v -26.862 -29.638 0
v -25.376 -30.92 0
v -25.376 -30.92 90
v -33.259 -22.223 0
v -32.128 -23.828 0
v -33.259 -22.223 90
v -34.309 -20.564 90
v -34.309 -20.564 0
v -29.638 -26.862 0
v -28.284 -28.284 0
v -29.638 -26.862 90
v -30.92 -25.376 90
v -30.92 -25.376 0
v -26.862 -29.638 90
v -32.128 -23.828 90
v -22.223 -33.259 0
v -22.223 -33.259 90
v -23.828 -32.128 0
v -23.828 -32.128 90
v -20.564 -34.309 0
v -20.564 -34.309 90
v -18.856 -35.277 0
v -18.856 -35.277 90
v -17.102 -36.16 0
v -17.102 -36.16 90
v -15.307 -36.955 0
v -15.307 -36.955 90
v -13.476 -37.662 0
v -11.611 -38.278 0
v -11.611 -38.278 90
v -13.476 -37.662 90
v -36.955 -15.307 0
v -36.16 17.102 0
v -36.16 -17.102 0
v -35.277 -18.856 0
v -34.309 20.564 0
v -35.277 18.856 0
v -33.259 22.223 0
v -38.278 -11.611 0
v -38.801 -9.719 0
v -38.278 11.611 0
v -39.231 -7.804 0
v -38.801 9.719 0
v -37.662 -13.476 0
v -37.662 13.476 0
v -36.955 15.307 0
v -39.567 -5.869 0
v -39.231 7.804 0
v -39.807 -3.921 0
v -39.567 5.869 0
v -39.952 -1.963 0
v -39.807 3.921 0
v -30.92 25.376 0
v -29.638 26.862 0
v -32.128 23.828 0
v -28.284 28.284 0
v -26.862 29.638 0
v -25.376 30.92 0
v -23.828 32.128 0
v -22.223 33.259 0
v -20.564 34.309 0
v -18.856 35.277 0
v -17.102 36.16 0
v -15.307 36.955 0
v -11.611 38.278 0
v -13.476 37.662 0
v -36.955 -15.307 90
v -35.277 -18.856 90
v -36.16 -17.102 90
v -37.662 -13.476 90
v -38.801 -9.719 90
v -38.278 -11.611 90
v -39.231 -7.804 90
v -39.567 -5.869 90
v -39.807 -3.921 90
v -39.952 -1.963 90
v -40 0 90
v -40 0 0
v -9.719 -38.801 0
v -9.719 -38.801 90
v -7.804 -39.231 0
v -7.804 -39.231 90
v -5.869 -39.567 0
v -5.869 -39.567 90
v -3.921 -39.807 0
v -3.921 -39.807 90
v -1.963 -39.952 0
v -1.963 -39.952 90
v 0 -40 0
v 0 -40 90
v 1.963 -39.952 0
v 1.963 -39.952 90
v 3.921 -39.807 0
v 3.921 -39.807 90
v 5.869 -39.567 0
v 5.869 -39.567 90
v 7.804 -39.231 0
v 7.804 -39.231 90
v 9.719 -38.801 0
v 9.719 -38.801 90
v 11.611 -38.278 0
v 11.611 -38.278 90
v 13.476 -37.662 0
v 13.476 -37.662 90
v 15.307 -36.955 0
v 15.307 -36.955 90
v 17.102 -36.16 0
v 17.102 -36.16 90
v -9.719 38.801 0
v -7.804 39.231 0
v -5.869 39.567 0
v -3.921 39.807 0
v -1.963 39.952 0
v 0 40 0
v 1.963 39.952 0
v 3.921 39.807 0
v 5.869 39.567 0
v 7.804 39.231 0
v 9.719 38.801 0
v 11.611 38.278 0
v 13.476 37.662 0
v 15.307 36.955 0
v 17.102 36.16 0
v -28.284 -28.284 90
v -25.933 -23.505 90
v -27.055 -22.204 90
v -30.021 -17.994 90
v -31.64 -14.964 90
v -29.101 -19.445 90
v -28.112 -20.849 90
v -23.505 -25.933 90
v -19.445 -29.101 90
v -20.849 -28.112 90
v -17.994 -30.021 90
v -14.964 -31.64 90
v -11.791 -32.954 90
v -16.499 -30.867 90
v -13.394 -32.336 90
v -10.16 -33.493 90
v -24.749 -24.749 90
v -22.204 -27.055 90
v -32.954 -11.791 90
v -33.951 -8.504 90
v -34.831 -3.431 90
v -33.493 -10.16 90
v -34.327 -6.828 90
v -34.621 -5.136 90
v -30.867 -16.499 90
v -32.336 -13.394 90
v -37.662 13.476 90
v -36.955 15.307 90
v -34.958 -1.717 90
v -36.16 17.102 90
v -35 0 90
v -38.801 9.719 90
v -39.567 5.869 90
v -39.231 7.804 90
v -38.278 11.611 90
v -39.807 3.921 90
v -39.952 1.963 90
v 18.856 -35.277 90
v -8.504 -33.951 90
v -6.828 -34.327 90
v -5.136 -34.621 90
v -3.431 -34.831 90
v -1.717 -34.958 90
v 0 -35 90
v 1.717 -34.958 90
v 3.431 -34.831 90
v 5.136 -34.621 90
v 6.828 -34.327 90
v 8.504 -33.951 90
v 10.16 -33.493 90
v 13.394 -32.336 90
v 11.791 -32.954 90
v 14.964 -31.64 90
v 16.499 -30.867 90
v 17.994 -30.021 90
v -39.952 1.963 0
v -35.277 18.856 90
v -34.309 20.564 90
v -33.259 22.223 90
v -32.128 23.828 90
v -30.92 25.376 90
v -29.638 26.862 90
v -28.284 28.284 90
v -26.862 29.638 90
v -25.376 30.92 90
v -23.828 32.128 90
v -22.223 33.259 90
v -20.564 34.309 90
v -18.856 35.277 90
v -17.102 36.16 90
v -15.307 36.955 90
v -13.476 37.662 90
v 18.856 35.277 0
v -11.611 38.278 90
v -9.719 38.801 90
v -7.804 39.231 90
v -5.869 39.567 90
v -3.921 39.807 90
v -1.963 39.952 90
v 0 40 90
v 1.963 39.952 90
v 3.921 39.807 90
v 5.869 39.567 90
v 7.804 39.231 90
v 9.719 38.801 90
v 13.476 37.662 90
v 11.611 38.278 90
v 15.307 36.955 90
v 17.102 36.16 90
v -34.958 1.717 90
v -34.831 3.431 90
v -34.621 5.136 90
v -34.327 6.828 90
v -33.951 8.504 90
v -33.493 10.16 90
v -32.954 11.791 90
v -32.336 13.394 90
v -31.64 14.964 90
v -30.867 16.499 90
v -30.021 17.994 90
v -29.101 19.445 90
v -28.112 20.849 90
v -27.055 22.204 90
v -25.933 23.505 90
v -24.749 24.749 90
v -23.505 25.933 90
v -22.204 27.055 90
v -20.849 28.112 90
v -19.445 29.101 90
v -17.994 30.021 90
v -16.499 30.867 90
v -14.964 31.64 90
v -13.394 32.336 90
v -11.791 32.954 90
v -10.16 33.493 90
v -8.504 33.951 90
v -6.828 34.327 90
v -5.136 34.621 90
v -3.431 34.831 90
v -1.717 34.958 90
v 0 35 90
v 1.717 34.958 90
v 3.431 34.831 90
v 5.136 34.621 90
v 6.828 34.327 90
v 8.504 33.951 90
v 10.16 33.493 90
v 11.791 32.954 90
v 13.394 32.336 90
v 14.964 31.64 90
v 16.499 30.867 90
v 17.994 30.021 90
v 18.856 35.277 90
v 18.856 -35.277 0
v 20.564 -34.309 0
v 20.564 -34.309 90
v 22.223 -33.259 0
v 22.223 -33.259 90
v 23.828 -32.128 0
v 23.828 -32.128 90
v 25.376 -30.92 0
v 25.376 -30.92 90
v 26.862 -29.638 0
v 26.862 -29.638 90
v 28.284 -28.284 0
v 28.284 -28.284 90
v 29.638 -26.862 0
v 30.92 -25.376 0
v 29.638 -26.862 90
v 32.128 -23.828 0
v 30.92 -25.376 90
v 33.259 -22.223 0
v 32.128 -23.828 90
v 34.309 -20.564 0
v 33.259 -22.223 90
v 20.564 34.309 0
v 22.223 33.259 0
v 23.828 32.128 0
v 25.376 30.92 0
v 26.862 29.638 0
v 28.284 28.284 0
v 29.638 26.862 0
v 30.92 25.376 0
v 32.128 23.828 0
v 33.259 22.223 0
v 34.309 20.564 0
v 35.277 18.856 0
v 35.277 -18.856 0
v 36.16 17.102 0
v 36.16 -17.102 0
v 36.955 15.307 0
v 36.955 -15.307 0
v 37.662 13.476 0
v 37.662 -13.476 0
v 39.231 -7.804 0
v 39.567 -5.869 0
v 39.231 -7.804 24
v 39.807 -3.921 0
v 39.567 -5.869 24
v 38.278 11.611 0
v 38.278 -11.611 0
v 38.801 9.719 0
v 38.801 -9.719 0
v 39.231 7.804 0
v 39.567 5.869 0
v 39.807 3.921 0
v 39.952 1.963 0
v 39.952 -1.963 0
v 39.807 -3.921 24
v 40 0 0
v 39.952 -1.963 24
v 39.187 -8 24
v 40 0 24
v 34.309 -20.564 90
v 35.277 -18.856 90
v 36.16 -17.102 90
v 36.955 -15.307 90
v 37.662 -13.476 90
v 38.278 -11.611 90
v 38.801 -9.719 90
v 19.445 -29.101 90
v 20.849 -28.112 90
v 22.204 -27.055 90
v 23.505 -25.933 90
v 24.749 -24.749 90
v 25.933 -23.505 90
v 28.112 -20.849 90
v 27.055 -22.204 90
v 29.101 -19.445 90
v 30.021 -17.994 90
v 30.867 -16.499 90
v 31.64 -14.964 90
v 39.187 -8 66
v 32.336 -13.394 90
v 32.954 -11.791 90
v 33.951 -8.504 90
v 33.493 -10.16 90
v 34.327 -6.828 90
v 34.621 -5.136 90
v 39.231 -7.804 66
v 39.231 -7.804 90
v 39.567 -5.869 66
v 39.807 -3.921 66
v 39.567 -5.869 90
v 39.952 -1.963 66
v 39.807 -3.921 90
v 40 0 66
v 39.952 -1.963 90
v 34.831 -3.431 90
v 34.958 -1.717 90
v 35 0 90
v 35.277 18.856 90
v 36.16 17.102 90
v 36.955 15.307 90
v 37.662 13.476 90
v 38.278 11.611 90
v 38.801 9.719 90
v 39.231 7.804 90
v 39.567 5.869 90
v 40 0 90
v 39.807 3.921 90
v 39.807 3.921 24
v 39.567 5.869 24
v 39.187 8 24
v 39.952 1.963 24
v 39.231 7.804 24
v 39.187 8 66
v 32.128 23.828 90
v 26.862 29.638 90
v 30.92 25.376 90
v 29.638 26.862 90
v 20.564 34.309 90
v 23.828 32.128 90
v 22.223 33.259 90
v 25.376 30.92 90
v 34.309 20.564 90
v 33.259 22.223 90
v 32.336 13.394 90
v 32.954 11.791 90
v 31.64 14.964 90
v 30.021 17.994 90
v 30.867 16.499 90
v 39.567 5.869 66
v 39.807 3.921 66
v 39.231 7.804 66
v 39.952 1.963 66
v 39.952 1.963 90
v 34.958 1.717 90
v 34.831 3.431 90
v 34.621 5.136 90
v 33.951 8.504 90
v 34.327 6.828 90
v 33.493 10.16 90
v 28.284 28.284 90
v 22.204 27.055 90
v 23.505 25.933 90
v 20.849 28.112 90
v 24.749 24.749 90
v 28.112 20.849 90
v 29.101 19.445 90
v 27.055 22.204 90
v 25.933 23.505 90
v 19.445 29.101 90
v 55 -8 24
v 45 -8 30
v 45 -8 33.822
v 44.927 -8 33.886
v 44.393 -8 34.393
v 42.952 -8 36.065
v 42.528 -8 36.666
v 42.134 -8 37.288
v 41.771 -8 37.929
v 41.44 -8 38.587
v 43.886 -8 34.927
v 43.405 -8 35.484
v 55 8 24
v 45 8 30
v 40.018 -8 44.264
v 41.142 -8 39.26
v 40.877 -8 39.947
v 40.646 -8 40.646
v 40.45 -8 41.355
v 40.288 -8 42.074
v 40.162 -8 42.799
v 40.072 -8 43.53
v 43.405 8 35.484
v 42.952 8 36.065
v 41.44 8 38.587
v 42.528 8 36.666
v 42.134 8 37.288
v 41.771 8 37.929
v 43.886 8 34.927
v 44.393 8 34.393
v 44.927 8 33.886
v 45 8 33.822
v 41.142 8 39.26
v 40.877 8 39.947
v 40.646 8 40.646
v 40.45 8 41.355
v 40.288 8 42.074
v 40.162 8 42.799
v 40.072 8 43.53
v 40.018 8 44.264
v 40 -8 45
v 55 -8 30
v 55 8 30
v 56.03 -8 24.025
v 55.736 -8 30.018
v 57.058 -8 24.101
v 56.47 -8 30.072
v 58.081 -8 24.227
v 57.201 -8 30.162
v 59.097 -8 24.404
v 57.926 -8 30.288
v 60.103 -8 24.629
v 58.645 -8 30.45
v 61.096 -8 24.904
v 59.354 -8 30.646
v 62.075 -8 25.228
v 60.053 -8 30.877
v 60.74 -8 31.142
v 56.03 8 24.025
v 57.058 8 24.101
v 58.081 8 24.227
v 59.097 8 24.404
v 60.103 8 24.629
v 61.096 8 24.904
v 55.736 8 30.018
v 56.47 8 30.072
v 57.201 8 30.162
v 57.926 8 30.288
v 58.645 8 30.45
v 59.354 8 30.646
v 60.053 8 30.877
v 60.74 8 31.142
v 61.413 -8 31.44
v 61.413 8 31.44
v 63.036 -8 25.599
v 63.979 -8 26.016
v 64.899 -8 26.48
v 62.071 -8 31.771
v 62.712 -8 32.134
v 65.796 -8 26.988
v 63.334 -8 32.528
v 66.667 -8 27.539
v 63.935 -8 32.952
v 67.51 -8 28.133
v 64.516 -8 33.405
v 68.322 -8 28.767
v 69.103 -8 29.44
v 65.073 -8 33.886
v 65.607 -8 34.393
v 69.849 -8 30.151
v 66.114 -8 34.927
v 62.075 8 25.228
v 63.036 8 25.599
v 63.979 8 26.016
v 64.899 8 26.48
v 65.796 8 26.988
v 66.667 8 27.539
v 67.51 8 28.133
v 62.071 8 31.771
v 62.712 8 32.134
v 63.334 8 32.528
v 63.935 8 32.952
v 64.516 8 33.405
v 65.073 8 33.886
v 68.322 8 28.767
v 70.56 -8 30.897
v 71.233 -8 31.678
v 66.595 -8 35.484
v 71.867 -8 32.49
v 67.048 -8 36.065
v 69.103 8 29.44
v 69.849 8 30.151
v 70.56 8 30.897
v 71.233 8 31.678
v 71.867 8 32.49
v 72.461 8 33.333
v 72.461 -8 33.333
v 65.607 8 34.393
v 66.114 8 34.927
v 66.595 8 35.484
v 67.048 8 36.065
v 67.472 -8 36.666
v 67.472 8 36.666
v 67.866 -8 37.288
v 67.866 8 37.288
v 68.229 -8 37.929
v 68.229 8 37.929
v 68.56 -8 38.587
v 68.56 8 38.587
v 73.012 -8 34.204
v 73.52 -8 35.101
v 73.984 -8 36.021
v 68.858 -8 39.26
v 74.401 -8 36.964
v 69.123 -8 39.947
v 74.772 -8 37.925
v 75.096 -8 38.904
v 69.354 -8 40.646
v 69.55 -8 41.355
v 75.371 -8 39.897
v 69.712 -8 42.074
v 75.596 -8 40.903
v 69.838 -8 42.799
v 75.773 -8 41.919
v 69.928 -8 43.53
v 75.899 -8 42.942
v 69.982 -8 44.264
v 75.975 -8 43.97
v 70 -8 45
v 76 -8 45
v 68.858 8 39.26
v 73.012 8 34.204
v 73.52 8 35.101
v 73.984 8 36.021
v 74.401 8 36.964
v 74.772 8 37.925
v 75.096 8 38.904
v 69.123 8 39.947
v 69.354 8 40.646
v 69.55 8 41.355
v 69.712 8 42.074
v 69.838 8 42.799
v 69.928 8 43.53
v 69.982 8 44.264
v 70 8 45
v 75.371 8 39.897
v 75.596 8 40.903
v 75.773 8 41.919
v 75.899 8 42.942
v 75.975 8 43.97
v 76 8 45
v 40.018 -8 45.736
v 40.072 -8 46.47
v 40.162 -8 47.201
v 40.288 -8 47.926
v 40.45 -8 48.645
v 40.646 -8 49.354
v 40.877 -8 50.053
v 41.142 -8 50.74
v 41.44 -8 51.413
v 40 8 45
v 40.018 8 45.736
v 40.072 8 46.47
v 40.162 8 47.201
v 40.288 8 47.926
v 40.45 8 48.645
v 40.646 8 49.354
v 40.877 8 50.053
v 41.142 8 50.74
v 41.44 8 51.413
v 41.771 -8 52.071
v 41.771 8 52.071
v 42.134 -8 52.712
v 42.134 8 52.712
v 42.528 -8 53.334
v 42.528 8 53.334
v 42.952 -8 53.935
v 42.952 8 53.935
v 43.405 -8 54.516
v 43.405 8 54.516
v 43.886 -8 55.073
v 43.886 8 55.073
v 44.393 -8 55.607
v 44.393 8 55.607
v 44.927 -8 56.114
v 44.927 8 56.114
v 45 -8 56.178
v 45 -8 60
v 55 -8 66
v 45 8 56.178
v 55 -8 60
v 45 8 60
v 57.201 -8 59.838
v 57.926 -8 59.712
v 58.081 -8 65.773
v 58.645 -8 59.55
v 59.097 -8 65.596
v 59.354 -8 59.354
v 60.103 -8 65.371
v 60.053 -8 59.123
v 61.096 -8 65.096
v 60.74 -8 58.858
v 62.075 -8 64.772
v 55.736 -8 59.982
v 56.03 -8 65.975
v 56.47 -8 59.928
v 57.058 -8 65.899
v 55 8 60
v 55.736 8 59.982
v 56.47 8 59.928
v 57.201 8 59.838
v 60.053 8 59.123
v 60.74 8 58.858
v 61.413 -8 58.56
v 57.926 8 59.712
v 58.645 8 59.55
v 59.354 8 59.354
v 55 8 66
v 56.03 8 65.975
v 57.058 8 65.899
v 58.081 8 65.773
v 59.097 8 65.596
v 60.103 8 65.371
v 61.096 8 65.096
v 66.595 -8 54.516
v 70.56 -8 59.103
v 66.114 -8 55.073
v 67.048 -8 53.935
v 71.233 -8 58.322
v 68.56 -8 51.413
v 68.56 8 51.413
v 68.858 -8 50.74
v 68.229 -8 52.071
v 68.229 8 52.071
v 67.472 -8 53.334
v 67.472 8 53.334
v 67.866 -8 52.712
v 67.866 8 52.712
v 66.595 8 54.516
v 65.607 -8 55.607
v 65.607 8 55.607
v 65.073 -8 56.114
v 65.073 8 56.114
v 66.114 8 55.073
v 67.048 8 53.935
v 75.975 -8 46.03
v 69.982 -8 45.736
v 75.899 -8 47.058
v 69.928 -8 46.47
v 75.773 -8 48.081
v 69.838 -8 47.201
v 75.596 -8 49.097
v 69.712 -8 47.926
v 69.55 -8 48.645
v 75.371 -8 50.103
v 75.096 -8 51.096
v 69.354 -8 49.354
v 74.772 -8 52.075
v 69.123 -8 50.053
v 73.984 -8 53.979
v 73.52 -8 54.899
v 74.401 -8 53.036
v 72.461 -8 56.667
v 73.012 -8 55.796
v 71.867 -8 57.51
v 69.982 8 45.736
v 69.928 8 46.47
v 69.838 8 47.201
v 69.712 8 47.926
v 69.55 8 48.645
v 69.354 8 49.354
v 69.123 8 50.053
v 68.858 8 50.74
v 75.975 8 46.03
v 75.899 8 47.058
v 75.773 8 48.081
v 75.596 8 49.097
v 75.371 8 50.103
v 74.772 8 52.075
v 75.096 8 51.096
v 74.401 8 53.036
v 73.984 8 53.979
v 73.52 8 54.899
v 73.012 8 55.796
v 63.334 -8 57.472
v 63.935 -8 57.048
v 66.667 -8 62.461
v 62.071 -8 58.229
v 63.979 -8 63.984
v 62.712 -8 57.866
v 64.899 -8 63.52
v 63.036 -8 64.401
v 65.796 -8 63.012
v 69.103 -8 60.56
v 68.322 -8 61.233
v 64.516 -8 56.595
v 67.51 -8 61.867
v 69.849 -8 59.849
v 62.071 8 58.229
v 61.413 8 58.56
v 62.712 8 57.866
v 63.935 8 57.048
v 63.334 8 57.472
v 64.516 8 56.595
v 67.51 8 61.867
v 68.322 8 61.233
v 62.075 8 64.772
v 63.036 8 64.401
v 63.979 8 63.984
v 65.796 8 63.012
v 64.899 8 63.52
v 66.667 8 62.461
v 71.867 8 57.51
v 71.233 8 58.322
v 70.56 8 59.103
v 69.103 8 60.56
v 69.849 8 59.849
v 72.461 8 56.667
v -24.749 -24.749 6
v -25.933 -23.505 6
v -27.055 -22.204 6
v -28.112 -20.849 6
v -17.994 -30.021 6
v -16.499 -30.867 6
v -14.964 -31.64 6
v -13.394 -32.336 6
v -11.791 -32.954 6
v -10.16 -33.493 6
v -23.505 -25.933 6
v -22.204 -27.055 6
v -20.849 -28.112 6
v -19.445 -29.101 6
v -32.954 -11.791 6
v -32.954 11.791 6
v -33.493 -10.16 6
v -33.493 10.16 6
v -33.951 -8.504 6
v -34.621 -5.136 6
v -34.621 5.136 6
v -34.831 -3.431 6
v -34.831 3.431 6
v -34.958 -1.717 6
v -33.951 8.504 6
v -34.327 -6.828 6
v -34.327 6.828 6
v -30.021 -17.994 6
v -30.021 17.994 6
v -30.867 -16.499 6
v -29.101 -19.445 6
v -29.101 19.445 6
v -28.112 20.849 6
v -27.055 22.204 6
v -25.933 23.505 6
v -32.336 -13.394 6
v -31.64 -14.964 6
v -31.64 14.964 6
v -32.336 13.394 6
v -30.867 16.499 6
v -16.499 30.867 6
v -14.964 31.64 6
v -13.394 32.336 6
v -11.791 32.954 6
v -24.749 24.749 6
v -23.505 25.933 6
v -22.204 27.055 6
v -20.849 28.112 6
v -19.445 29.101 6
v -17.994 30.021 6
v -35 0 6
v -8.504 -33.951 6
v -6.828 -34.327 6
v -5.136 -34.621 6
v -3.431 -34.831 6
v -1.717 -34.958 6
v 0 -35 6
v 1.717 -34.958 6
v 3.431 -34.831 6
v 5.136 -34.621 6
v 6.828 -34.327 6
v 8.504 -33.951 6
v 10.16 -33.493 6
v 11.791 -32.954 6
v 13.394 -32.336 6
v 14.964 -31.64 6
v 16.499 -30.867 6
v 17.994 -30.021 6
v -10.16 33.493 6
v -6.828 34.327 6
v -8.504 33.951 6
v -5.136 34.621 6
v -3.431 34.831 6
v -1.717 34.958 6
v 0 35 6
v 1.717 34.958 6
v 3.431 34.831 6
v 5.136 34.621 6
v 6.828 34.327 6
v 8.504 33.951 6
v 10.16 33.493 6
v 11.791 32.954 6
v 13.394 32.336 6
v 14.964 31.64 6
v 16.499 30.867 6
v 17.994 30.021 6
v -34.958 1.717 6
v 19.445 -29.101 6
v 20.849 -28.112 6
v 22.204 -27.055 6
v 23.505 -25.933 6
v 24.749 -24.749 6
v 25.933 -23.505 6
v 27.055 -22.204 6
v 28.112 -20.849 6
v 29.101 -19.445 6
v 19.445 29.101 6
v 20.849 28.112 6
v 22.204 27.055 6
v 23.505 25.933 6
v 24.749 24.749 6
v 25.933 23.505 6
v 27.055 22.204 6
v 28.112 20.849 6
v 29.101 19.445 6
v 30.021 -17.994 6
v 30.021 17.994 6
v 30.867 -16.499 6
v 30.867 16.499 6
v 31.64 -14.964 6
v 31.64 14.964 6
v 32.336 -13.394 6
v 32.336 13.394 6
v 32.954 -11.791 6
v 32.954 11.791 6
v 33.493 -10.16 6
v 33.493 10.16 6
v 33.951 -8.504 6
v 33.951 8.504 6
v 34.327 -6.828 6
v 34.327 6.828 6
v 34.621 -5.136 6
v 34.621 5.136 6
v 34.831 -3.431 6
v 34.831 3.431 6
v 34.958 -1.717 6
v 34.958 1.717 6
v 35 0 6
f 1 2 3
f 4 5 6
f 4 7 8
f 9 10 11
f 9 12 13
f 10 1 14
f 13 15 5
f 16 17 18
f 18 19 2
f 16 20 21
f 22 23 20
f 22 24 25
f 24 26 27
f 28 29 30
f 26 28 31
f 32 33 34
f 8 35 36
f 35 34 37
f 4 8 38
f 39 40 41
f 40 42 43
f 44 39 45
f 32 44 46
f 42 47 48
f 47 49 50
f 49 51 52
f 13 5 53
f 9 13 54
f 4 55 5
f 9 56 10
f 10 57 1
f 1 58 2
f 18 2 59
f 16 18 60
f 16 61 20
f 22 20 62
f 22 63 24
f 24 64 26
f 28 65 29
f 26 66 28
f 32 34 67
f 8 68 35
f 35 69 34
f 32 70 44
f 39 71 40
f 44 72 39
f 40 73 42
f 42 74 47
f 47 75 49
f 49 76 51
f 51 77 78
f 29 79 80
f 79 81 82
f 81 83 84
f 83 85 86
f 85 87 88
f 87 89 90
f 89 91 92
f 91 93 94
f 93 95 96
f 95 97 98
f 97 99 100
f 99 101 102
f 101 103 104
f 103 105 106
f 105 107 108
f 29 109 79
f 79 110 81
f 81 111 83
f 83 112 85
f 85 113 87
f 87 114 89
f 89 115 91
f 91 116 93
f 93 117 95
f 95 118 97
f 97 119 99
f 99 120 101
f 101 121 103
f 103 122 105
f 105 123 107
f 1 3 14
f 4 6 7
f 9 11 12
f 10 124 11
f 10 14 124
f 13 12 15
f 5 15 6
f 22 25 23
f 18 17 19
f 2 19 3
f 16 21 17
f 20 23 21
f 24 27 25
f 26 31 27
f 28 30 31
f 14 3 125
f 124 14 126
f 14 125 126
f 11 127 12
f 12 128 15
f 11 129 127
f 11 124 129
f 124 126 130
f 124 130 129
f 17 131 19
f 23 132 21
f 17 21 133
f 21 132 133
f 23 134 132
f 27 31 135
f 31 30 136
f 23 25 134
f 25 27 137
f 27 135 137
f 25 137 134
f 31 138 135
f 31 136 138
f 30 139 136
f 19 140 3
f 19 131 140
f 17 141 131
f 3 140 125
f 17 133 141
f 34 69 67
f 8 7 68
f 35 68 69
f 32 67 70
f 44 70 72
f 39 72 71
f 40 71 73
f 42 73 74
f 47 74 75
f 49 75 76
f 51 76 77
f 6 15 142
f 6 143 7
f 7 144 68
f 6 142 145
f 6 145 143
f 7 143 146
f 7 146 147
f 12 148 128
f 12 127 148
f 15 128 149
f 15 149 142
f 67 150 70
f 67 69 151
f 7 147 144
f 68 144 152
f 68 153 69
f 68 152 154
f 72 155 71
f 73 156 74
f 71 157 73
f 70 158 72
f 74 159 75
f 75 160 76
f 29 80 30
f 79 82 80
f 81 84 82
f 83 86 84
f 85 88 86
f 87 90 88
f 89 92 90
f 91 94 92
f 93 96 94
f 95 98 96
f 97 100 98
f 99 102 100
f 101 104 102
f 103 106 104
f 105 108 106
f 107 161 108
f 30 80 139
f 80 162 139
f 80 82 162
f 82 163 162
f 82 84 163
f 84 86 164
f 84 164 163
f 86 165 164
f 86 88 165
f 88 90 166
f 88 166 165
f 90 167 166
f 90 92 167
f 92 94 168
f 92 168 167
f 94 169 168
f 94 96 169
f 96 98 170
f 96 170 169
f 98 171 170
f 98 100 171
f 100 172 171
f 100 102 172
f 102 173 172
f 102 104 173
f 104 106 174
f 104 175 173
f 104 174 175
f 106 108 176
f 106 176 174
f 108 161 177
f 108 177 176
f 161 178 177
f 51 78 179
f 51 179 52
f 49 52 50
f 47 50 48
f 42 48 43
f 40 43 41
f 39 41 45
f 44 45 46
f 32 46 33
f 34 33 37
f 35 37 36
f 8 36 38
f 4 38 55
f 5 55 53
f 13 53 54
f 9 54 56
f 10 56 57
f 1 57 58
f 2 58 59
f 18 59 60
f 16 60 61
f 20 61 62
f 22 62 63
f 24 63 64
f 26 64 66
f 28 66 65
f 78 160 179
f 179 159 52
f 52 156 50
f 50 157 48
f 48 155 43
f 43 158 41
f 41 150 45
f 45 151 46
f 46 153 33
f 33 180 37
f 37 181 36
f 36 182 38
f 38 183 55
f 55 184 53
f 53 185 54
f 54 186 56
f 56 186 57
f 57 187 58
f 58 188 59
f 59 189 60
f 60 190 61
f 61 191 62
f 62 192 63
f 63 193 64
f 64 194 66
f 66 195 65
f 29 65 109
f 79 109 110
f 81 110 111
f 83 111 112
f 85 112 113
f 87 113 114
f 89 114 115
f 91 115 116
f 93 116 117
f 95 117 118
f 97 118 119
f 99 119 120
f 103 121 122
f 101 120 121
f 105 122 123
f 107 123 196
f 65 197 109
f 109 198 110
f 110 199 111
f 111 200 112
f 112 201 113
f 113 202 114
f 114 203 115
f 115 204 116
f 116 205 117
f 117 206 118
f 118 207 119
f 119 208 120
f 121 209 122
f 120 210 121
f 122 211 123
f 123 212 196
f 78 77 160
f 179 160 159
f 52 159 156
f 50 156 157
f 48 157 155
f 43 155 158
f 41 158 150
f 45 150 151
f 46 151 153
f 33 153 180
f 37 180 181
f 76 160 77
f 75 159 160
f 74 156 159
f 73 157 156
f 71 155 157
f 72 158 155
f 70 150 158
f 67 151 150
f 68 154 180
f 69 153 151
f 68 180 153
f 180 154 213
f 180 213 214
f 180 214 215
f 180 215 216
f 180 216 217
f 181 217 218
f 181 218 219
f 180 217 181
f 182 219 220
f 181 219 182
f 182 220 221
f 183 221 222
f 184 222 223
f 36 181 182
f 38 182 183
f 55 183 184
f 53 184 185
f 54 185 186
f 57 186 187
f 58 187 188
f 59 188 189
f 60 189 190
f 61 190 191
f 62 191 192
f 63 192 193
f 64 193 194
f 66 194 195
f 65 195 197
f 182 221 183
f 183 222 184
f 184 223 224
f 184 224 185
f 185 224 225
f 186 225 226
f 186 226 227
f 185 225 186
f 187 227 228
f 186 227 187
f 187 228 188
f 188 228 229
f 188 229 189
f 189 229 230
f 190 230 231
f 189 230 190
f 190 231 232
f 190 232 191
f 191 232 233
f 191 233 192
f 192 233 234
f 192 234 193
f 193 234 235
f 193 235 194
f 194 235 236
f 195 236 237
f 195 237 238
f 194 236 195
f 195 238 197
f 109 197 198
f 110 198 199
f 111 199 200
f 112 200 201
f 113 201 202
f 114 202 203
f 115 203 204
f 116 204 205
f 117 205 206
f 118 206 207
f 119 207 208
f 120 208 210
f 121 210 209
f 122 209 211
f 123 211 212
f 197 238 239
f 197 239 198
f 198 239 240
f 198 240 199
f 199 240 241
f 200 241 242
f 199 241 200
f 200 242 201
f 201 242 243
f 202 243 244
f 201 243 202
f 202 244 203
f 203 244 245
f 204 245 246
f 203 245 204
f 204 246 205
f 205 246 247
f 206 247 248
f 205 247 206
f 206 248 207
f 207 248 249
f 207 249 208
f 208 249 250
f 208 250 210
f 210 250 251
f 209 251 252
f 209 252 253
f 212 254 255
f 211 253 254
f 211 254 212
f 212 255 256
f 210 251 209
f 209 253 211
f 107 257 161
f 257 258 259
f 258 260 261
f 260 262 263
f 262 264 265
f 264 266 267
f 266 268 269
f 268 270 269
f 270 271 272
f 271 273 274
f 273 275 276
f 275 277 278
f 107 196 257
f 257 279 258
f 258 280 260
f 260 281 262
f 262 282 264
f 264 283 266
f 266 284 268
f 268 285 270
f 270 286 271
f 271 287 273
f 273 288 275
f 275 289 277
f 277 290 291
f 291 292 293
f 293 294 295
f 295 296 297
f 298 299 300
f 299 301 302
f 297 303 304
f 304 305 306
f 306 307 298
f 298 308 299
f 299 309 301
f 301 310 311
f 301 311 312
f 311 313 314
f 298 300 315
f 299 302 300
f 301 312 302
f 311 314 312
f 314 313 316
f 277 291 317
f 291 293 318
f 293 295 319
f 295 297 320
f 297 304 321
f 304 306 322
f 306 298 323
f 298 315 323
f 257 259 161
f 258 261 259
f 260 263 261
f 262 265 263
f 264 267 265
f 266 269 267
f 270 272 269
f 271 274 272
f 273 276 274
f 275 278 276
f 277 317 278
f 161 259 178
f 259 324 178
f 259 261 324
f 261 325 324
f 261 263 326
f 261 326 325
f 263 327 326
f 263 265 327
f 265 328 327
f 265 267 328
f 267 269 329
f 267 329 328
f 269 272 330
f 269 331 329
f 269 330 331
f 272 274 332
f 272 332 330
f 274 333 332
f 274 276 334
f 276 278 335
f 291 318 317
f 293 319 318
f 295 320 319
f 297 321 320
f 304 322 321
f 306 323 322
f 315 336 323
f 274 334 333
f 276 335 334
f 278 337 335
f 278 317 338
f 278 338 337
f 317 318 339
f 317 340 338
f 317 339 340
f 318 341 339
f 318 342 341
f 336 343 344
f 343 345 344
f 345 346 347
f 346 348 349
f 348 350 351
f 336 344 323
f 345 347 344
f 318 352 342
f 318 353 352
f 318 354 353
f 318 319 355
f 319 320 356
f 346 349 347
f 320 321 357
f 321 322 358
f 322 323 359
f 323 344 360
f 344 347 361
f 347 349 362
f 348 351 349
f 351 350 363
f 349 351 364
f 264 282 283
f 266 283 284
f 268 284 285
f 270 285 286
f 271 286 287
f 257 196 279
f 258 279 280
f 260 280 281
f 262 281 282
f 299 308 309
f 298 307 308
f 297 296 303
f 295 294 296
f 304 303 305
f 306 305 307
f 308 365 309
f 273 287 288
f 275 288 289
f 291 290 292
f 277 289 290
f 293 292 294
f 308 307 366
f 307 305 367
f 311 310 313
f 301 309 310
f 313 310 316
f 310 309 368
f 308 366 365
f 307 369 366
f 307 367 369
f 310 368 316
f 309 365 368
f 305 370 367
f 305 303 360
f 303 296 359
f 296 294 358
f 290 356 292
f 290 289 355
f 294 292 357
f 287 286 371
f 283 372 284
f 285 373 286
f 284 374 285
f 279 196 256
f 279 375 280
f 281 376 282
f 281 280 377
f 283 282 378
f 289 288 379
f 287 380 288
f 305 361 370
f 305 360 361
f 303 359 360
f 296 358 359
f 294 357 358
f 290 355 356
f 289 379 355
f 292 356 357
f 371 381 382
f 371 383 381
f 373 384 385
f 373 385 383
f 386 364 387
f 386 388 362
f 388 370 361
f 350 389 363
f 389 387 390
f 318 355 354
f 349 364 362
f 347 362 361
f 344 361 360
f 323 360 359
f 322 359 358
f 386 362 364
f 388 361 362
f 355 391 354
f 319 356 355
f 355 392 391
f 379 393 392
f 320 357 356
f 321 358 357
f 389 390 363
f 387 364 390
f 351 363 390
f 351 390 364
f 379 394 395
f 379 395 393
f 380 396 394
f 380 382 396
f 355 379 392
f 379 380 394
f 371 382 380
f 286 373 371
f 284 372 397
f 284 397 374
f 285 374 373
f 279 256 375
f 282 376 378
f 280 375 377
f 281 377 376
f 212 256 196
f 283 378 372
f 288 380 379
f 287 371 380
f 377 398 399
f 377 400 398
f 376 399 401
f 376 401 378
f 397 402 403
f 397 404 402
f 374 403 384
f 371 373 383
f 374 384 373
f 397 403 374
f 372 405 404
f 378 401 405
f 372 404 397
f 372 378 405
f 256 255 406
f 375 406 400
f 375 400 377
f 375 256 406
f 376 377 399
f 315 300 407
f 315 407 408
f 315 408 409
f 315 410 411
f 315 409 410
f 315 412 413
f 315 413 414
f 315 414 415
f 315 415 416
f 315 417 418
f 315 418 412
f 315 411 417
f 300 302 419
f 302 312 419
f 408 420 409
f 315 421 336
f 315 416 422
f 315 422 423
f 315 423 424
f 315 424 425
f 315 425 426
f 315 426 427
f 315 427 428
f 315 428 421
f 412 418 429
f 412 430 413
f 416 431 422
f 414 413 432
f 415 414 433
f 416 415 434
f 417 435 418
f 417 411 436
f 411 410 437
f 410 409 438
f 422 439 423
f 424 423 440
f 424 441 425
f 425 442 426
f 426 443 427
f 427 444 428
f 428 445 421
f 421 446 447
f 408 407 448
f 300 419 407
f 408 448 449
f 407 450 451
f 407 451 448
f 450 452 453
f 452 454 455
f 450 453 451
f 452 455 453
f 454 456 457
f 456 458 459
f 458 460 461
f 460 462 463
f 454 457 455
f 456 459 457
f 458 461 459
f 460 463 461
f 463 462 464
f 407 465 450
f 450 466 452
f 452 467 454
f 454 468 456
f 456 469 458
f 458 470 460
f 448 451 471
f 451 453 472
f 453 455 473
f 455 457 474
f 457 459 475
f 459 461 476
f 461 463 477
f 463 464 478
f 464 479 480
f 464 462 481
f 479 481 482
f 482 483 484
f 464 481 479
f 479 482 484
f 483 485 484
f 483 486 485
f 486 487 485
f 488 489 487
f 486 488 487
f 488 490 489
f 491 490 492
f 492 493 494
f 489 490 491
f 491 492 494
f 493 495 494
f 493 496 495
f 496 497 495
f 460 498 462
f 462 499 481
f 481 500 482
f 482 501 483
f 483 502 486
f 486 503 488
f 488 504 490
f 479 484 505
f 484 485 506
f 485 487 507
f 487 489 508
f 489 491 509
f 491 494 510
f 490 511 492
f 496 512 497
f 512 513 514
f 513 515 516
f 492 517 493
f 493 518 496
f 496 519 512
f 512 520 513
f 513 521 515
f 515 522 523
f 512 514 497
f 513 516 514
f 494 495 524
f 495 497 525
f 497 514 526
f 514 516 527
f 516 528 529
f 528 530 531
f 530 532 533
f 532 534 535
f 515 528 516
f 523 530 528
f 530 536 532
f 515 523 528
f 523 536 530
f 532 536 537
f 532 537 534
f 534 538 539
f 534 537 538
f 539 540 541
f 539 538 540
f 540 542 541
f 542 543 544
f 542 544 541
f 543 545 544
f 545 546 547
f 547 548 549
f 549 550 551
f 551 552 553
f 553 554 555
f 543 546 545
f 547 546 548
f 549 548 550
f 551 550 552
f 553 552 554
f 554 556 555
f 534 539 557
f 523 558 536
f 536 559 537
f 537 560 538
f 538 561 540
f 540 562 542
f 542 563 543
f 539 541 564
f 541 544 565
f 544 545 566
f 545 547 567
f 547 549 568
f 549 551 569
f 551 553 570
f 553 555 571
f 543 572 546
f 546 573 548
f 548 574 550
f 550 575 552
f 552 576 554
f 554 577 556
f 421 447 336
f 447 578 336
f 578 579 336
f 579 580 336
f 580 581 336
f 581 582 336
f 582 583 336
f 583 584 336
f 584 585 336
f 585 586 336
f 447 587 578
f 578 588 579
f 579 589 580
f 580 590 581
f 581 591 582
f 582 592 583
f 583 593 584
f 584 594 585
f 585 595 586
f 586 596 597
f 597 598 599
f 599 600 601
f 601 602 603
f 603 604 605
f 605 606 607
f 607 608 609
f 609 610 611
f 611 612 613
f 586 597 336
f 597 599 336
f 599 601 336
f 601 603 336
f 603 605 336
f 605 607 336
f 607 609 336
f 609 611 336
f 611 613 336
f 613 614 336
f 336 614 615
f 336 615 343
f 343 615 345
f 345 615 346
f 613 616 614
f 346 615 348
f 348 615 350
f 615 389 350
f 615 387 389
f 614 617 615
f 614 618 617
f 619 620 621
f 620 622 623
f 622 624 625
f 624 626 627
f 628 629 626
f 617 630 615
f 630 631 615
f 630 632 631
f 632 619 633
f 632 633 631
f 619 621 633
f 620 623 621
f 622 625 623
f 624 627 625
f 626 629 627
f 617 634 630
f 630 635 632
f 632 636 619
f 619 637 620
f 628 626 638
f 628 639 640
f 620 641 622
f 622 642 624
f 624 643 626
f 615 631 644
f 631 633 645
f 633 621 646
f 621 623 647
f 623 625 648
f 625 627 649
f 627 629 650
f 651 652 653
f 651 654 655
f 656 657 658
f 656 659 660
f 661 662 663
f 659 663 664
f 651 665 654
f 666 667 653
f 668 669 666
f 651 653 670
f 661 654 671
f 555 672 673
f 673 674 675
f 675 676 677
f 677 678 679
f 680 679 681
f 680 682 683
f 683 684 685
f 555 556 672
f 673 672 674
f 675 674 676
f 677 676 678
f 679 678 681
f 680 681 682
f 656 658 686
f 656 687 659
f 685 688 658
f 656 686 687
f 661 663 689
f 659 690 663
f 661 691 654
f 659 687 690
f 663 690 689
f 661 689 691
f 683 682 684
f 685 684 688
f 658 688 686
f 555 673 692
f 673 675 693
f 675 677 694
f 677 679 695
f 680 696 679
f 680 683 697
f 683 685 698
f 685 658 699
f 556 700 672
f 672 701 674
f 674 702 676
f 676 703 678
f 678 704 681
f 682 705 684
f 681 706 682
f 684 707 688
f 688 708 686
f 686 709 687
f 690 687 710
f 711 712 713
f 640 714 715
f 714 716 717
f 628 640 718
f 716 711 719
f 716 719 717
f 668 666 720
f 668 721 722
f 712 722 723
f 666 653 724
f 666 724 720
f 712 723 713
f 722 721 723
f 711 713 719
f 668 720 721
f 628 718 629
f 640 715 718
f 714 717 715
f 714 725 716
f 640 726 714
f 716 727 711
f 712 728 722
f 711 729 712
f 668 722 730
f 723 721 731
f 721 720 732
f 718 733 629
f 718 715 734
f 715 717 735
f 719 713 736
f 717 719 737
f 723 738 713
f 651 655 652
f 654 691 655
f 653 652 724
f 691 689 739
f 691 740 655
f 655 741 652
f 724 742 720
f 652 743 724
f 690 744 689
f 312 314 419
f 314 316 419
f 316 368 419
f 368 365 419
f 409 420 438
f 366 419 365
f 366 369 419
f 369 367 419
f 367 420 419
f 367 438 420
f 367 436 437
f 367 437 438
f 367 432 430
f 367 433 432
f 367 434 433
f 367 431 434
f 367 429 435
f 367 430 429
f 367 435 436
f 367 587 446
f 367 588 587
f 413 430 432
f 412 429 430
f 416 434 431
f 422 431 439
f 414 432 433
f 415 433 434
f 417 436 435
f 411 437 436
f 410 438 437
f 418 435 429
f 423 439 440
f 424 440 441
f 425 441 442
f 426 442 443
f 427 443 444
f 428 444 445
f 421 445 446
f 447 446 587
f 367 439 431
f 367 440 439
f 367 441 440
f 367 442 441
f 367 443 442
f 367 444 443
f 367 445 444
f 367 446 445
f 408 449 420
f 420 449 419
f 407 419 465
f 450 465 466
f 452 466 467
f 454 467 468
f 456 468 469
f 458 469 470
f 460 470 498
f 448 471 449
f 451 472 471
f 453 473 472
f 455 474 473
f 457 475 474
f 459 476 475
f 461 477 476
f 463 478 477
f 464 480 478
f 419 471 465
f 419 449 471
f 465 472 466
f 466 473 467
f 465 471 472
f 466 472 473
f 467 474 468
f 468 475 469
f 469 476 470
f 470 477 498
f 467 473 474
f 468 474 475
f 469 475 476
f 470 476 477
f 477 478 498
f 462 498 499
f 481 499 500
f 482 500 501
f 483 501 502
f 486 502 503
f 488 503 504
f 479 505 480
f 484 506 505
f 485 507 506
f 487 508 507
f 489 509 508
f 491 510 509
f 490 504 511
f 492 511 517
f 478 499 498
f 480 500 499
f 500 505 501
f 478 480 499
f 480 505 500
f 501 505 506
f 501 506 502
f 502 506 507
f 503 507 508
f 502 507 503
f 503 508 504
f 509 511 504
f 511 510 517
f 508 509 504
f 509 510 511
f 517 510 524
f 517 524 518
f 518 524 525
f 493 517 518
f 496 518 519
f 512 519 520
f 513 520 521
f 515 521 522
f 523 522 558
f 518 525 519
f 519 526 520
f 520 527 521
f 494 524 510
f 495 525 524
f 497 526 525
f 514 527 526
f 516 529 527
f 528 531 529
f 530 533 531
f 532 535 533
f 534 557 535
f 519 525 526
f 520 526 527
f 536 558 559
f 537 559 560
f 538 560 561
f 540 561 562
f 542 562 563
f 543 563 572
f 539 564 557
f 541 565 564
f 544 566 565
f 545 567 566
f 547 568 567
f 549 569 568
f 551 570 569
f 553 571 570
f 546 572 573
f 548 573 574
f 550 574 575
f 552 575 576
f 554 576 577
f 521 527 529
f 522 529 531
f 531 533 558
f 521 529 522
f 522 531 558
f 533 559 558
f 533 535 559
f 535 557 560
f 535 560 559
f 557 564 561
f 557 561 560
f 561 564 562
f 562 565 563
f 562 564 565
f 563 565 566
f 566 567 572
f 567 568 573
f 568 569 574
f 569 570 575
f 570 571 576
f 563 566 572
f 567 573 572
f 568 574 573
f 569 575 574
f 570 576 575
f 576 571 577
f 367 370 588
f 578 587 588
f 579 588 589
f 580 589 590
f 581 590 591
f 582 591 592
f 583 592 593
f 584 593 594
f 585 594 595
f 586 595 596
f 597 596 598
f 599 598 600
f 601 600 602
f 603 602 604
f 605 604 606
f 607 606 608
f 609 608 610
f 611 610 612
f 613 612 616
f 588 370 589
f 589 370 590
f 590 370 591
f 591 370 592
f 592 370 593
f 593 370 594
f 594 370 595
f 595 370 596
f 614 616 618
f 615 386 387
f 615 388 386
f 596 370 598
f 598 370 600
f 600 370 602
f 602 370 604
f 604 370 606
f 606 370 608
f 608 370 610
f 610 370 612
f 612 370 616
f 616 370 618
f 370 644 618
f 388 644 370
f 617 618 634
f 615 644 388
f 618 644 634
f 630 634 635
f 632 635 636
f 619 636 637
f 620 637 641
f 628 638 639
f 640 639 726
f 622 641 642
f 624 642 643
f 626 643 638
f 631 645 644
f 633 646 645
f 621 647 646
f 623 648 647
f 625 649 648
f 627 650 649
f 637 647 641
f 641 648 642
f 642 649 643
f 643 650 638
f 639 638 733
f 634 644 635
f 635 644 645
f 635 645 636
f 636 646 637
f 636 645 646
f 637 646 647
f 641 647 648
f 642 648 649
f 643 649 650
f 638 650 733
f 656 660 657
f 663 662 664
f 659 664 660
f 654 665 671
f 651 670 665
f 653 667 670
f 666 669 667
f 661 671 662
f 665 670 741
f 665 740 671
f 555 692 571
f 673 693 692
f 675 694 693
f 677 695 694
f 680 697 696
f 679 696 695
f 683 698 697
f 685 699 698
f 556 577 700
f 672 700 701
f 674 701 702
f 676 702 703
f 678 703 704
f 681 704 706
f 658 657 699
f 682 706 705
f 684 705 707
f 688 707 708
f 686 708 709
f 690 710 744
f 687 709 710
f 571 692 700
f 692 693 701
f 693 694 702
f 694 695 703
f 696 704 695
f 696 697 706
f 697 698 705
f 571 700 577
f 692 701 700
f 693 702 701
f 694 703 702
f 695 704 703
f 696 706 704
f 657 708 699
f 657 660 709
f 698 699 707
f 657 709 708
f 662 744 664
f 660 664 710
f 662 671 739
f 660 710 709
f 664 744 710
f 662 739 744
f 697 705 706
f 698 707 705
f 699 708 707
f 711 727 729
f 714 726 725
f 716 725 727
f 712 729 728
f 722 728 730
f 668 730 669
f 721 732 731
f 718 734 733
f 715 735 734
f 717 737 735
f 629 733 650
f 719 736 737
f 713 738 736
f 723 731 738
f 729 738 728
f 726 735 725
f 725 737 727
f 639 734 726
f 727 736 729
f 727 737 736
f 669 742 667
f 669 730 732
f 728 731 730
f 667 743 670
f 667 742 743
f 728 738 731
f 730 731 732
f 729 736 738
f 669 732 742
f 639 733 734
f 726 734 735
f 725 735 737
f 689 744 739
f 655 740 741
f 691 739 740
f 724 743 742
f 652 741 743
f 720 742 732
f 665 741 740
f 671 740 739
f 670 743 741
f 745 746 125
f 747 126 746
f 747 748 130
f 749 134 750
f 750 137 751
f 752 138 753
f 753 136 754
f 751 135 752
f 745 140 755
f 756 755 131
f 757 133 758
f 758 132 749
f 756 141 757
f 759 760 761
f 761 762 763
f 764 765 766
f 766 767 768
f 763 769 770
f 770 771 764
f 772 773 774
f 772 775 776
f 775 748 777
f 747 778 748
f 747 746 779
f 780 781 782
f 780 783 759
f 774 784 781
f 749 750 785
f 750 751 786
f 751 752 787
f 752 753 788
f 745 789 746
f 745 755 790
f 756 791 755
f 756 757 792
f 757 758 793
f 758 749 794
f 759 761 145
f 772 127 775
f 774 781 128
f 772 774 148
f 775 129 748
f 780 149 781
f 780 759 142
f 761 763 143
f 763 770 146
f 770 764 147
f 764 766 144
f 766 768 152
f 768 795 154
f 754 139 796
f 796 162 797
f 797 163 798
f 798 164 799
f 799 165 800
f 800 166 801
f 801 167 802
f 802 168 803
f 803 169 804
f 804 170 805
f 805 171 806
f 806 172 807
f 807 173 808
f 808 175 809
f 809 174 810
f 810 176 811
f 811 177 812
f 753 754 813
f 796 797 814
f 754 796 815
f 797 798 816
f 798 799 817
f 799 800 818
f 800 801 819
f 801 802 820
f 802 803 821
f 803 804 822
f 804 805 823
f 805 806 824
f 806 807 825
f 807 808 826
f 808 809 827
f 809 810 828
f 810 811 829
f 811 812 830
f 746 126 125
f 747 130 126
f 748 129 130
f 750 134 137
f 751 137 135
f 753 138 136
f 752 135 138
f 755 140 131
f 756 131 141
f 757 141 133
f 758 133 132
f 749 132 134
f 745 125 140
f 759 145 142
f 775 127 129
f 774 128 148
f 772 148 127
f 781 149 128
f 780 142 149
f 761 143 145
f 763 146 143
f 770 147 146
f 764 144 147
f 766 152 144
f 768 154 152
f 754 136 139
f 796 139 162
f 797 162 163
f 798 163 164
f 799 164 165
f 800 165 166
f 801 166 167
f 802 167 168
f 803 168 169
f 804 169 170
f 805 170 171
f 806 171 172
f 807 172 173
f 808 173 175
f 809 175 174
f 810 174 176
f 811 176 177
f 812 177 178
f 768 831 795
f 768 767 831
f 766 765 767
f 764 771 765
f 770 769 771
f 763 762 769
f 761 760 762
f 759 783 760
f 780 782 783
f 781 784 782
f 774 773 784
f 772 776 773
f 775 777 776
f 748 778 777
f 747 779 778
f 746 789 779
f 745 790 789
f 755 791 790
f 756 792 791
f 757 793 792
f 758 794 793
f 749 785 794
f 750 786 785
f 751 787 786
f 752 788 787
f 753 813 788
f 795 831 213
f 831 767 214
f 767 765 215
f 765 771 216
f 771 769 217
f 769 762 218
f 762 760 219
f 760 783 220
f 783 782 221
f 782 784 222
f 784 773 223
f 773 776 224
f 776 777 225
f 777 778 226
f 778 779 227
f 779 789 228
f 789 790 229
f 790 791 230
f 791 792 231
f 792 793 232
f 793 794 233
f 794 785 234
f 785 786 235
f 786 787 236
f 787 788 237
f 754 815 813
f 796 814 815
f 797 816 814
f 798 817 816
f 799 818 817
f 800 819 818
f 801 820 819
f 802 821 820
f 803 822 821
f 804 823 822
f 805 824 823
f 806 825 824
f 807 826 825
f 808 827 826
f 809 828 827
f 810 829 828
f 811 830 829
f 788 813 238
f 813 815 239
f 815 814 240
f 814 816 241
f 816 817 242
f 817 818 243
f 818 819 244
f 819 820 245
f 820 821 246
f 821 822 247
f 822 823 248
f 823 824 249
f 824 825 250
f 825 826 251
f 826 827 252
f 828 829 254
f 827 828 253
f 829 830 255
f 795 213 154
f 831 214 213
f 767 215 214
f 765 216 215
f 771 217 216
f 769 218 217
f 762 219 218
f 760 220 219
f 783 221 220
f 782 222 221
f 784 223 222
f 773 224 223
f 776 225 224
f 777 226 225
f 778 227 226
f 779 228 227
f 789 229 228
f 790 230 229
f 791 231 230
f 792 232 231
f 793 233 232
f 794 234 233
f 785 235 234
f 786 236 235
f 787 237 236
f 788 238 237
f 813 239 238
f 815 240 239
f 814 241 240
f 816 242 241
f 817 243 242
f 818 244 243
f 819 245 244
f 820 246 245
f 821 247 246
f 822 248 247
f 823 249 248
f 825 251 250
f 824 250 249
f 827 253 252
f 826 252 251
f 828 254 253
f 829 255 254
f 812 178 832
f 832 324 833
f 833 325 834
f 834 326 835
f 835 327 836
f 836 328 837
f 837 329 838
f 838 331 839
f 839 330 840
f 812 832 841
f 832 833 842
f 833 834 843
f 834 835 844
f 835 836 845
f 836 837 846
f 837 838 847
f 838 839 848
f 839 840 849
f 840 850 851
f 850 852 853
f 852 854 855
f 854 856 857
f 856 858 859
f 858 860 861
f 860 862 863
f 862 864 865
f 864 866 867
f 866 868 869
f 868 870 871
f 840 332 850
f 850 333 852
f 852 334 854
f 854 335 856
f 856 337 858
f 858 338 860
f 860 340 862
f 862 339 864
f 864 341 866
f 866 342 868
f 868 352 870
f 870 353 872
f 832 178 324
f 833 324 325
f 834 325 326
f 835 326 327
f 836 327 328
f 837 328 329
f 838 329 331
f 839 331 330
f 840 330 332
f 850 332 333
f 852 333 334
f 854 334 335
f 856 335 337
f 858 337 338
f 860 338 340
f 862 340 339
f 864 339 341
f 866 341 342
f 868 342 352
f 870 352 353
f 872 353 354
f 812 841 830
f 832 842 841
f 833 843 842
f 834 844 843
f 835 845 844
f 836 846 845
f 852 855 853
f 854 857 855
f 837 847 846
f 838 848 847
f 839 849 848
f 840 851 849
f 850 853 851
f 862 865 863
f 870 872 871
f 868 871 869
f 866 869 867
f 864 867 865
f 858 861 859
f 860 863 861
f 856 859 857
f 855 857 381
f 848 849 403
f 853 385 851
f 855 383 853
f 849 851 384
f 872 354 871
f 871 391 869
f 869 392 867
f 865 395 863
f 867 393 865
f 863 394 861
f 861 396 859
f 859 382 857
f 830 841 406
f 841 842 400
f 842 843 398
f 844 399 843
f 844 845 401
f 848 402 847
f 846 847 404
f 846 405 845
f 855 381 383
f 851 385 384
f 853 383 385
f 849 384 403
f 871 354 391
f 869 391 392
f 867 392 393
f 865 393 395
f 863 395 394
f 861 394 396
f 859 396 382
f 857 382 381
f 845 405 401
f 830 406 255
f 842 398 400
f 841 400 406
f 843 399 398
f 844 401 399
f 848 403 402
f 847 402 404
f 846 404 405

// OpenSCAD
// Parameters
$fn = 128;

outer_d = 80;
inner_d = 70;
height = 90;
bottom_thickness = 6;
outer_r = outer_d/2;
inner_r = inner_d/2;

handle_inner_h = 30;   // inner void height
handle_inner_w = 25;   // inner void width
handle_t       = 6;    // handle ring thickness
handle_depth   = 16;   // handle thickness along Y
handle_embed   = 1.0;  // embed into mug wall for solid union

eps = 0.2;

// 2D D-shape in XY (flat side at x=0, centered in Y)
module d_shape2d(w, h) {
    R = h/2;
    union() {
        translate([0, -R]) square([w - R, h], center = false);
        translate([w - R, 0]) circle(r = R);
    }
}

// 3D handle placed on +X side, centered in Z
module handle3d() {
    w_o = handle_inner_w + 2*handle_t;
    h_o = handle_inner_h + 2*handle_t;

    translate([outer_r - handle_embed, 0, height/2])
        rotate([-90, 0, 0])  // extrude along Y
            linear_extrude(height = handle_depth, center = true, convexity = 10)
                difference() {
                    d_shape2d(w_o, h_o);
                    translate([handle_t, 0]) d_shape2d(handle_inner_w, handle_inner_h);
                }
}

// Mug with handle
difference() {
    union() {
        // Outer mug body
        cylinder(r = outer_r, h = height);
        // D-shaped handle on +X side
        handle3d();
    }
    // Hollow interior, leaving 6mm bottom
    translate([0, 0, bottom_thickness])
        cylinder(r = inner_r, h = height - bottom_thickness + eps);
}
